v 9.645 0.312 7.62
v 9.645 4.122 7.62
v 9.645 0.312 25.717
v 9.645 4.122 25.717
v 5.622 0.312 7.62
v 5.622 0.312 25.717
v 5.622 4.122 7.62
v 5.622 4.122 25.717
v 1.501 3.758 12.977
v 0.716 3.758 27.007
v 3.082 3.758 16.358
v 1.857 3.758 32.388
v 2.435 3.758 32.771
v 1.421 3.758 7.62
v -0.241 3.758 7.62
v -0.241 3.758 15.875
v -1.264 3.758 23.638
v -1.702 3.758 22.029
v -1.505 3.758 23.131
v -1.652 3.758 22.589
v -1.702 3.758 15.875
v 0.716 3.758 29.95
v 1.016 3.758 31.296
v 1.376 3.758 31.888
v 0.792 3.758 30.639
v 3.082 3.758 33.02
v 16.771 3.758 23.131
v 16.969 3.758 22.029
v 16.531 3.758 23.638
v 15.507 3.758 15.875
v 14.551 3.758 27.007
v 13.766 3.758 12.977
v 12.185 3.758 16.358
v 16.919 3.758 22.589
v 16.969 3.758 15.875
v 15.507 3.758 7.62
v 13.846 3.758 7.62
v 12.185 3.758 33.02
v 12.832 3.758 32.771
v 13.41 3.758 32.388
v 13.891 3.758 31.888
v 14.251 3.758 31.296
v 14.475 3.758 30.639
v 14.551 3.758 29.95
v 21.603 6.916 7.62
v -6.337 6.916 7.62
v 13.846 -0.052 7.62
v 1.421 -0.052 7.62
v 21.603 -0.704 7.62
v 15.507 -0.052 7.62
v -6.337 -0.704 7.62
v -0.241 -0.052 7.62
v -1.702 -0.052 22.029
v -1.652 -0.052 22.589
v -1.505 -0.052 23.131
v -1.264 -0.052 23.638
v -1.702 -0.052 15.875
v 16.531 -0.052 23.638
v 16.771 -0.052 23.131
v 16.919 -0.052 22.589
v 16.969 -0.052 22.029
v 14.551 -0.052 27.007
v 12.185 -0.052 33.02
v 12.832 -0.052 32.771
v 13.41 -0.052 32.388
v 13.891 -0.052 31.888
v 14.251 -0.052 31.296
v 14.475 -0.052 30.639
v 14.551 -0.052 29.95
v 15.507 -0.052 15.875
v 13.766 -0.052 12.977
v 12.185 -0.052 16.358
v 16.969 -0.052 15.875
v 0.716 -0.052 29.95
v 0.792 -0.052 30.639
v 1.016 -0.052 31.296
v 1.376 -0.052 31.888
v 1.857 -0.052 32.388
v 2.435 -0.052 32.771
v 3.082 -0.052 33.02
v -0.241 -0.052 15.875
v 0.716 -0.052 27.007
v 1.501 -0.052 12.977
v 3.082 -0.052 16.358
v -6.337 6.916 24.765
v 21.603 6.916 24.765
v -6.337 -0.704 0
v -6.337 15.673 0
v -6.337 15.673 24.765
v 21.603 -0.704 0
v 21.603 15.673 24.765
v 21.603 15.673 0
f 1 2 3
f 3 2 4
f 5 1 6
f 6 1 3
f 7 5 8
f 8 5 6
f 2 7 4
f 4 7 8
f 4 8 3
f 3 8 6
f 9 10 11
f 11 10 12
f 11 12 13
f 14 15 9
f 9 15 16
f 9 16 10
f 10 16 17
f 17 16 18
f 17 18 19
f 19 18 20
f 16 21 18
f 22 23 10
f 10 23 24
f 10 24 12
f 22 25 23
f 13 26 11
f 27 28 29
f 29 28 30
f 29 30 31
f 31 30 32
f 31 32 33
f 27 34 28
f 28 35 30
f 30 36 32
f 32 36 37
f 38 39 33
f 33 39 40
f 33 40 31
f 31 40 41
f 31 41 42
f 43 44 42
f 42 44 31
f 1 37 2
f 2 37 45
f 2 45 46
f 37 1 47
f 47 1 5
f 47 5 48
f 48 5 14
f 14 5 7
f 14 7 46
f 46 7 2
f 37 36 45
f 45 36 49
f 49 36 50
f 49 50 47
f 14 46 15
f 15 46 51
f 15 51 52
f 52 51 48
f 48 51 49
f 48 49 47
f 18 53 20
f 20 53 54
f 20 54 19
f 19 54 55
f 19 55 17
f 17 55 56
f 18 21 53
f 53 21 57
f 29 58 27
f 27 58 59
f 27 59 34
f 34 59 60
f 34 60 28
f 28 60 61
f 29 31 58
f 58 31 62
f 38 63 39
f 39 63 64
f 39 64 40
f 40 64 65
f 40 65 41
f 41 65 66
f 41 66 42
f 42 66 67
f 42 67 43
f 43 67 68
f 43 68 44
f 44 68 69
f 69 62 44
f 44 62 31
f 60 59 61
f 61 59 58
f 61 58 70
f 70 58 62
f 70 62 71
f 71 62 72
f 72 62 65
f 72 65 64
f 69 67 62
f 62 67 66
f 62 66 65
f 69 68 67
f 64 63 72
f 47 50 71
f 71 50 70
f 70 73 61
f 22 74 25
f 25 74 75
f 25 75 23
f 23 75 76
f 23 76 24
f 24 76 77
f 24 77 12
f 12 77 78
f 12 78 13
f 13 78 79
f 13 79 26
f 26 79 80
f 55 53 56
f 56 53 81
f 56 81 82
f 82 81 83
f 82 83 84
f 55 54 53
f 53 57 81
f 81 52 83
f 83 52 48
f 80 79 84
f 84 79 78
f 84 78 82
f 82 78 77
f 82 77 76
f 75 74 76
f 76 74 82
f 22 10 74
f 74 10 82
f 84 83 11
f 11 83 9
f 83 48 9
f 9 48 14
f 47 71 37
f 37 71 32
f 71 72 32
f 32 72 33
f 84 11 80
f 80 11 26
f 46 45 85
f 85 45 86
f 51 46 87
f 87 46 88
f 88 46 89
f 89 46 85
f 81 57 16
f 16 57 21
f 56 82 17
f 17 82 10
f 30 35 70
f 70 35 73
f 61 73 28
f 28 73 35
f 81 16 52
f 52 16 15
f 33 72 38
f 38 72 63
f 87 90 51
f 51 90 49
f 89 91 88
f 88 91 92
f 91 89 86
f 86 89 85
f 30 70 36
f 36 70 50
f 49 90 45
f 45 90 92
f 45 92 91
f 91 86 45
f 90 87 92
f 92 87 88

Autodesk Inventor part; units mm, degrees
ref_plane "YZ Plane" through (0, 0, 0) normal (1, 0, 0) x (0, 1, 0)
ref_plane "XZ Plane" through (0, 0, 0) normal (0, 1, 0) x (-1, 0, 0)
ref_plane "XY Plane" through (0, 0, 0) normal (0, 0, 1) x (1, 0, 0)
sketch "Sketch1" plane through (0, 0, 0) normal (0, 0, 1) x (1, 0, 0)
  line L0 (-6.3366, 6.9163) -> (21.6034, 6.9163)
  line L1 (21.6034, 6.9163) -> (21.6034, -8.3237)
  line L2 (21.6034, -8.3237) -> (-6.3366, -8.3237)
  line L3 (-6.3366, -8.3237) -> (-6.3366, 6.9163)
  point P0 (0, 0)
  dimension "d0" = 27.94
  dimension "d1" = 15.24
extrude "Extrusion1" add sketch "Sketch1" along normal blind 7.62
sketch "Sketch2" plane through (0, 0, 7.62) normal (0, 0, 1) x (1, 0, 0)
  line L0 (-6.3366, 6.9163) -> (-6.3366, -8.3237) projected
  line L1 (21.6034, -8.3237) -> (21.6034, 6.9163) projected
  line L2 (21.6034, -0.052) -> (21.6034, 2.361)
  line L3 (-6.3366, 2.361) -> (-6.3366, -0.052)
  line L4 (21.6034, 6.9163) -> (-6.3366, 6.9163) projected
  line L5 (-6.3366, -8.3237) -> (21.6034, -8.3237) projected
  line L6 (0.9631, 2.361) -> (-0.2406, 2.361)
  line L7 (-0.2406, -0.052) -> (0.9631, -0.052)
  line L8 (-0.2406, -0.052) -> (-0.2406, 2.361)
  line L9 (-0.2406, -0.052) -> (3.0821, -0.052)
  line L10 (3.0821, -0.052) -> (3.0821, 2.361)
  line L11 (3.0821, 2.361) -> (-0.2406, 2.361)
  line L12 (-0.2406, 2.361) -> (-0.2406, -0.052)
  line L13 (14.3038, 2.361) -> (15.5074, 2.361)
  line L14 (15.5074, -0.052) -> (14.3038, -0.052)
  line L15 (15.5074, -0.052) -> (15.5074, 2.361)
  line L16 (15.5074, -0.052) -> (12.1847, -0.052)
  line L17 (12.1847, -0.052) -> (12.1847, 2.361)
  line L18 (12.1847, 2.361) -> (15.5074, 2.361)
  line L19 (15.5074, 2.361) -> (15.5074, -0.052)
  line L20 (-6.3366, -0.7037) -> (21.6034, -0.7037)
  line L21 (-6.3366, 2.361) -> (21.6034, 2.361)
  line L22 (21.6034, 2.361) -> (21.6034, -0.052)
  line L23 (21.6034, -0.052) -> (-6.3366, -0.052)
  line L24 (-6.3366, -0.052) -> (-6.3366, 2.361)
  point P0 (0, 0)
  point P1 (-0.2406, 1.1545)
  point P2 (15.2669, -0.3643)
  point P3 (15.5074, 1.1545)
  point P4 (15.5074, -0.052)
  point P5 (21.6034, -0.052)
  point P6 (15.5074, 2.361)
  point P7 (-6.3366, -0.052)
  point P8 (-0.2406, -0.052)
  point P9 (-0.2406, 2.361)
  point P10 (-6.3366, 2.361)
  point P11 (3.0821, -0.052)
  point P12 (12.1847, -0.052)
  point P13 (12.1847, 2.361)
  point P14 (3.0821, 2.361)
  dimension "d6" = 6.096
extrude "Extrusion2" add sketch "Sketch2" along normal blind 8.7376 contours L6 L11 L10 L9 L7 L8 | L15 L14 L16 L17 L18 L13
sketch "Sketch3" plane through (-0.2406, 2.361, 7.62) normal (0, 1, 0) x (1, 0, 0)
  line L0 (3.3227, -8.7376) -> (0, -8.7376) projected
  line L1 (-6.096, 7.62) -> (21.844, 7.62) projected
  line L2 (3.3227, -11.3552) -> (3.3227, -8.7376)
  line L3 (12.4253, -11.3552) -> (12.4253, -8.7376)
  line L4 (17.2091, -8.255) -> (17.2091, -15.2732)
  line L5 (17.2091, -15.2732) -> (14.9854, -19.057)
  line L6 (14.9854, -19.057) -> (12.4253, -19.057)
  line L7 (12.4253, -19.057) -> (12.4253, -8.7376)
  line L8 (7.874, 7.62) -> (7.874, -24.8322)
  line L9 (3.3227, -11.3552) -> (3.3227, -8.7376)
  line L10 (-1.4611, -8.255) -> (-1.4611, -15.2732)
  line L11 (-1.4611, -15.2732) -> (0.7626, -19.057)
  line L12 (0.7626, -19.057) -> (3.3227, -19.057)
  line L13 (3.3227, -19.057) -> (3.3227, -8.7376)
  line L14 (17.2091, -8.255) -> (12.4253, -8.255)
  line L15 (12.4253, 0) -> (12.4253, -8.7376) projected
  line L16 (12.4253, -8.255) -> (12.4253, -8.7376)
  line L17 (-1.4611, -8.255) -> (3.3227, -8.255)
  line L18 (3.3227, 0) -> (3.3227, -8.7376) projected
  line L19 (3.3227, -8.255) -> (3.3227, -8.7376)
  point P0 (0.2406, 7.62)
extrude "Extrusion4" add sketch "Sketch2" along normal blind 25.4 contours L6 L11 L10 L9 L7 L8 | L15 L14 L16 L17 L18 L13
sketch "Sketch4" plane through (-6.3366, 6.9163, 0) normal (0, 1, 0) x (1, 0, 0)
  point P0 (6.3366, 0)
sketch "Sketch5" plane through (0, 0, 7.62) normal (0, 0, 1) x (1, 0, 0)
  line L0 (21.6034, 6.9163) -> (-6.3366, 6.9163) projected
  line L1 (-6.3366, 15.6735) -> (21.6034, 15.6735)
  line L2 (21.6034, 15.6735) -> (21.6034, 6.9163)
  line L3 (21.6034, 6.9163) -> (-6.3366, 6.9163)
  line L4 (-6.3366, 6.9163) -> (-6.3366, 15.6735)
  point P0 (0, 0)
extrude "Extrusion5" add sketch "Sketch5" along normal blind 17.145 and the other way blind 7.62
extrude "Extrusion6" cut sketch "Sketch2" against normal blind 25.4 contours L20 L1 L5 L0
extrude "Extrusion7" add sketch "Sketch2" along normal blind 4.7625 contours L21 L8 L23 L0 | L1 L23 L15 L21 | L21 L17 L23 L10
extrude "Extrusion8" add sketch "Sketch3" against normal up to surface (2.413 mm away)
sketch "Sketch6" plane through (-6.3366, -0.052, 7.62) normal (0, -1, 0) x (1, 0, 0)
  line L0 (27.94, 0) -> (27.94, 4.7625) projected
  line L1 (21.844, 4.7625) -> (21.844, 8.255) projected
  line L2 (27.94, 0) -> (21.844, 0)
  line L3 (21.844, 0) -> (21.844, 4.7625)
  line L4 (21.844, 4.7625) -> (27.94, 4.7625)
  line L5 (27.94, 4.7625) -> (27.94, 0)
  line L6 (18.5213, 4.7625) -> (18.5213, 25.4) projected
  line L7 (18.5213, 4.7625) -> (9.4187, 4.7625)
  line L8 (9.4187, 4.7625) -> (9.4187, 0)
  line L9 (9.4187, 0) -> (18.5213, 0)
  line L10 (18.5213, 0) -> (18.5213, 4.7625)
  line L11 (6.096, 4.7625) -> (6.096, 8.255) projected
  line L12 (0, 0) -> (0, 4.7625) projected
  line L13 (6.096, 4.7625) -> (0, 4.7625)
  line L14 (0, 4.7625) -> (0, 0)
  line L15 (0, 0) -> (6.096, 0)
  line L16 (6.096, 0) -> (6.096, 4.7625)
  point P0 (6.3366, -7.62)
  point P1 (21.844, 8.7376)
  point P2 (18.5213, 19.057)
  point P3 (6.096, 8.7376)
extrude "Extrusion9" cut sketch "Sketch6" against normal up to surface (6.9683 mm away)
sketch "Sketch7" plane through (12.1847, -0.052, 7.62) normal (0, -1, 0) x (1, 0, 0)
  line L0 (3.3227, 17.7594) -> (4.7838, 15.2732) projected
  line L1 (3.3227, 17.7594) -> (2.3659, 19.3874)
  line L2 (2.3659, 19.3874) -> (2.3659, 25.4)
  line L3 (3.3227, 25.4) -> (0, 25.4) projected
  line L4 (3.3227, 17.7594) -> (3.3227, 25.4) projected
  line L5 (2.3659, 25.4) -> (3.3227, 25.4)
  line L6 (3.3227, 25.4) -> (3.3227, 17.7594)
  line L7 (-18.5213, -7.62) -> (9.4187, -7.62) projected
  line L8 (-12.4253, 17.7594) -> (-11.4685, 19.3874)
  line L9 (-11.4685, 19.3874) -> (-11.4685, 25.4)
  line L10 (-12.4253, 17.7594) -> (-12.4253, 25.4)
  line L11 (-11.4685, 25.4) -> (-12.4253, 25.4)
  line L12 (-12.4253, 25.4) -> (-12.4253, 17.7594)
  line L13 (-12.4253, 8.7376) -> (-13.8865, 8.255) projected
  line L14 (-9.1825, 8.7376) -> (-9.1026, 8.7376)
  line L15 (-9.1026, 0) -> (-9.1026, 25.4) projected
  line L16 (-10.6842, 5.3569) -> (-10.764, 0)
  line L17 (-9.1026, 0) -> (-12.4253, 0) projected
  line L18 (-9.1026, 0) -> (-9.1026, 8.7376)
  line L19 (-10.764, 0) -> (-9.1026, 0)
  line L20 (9.4187, -7.62) -> (-18.5213, -7.62) projected
  line L21 (-18.5213, 17.145) -> (9.4187, 17.145) projected
  line L22 (1.5816, 5.3569) -> (1.6613, 0)
  line L23 (1.6613, 0) -> (0, 0)
  line L24 (0, 0) -> (0, 8.7376)
  line L25 (-4.5513, -7.62) -> (-4.5513, 0)
  line L26 (-4.5513, 11.274) -> (-4.5513, 11.3382)
  line L27 (-9.1026, 8.7376) -> (-10.6842, 5.3569)
  line L28 (0, 8.7376) -> (1.5816, 5.3569)
  point P0 (-12.1847, -7.62)
extrude "Extrusion10" cut sketch "Sketch7" against normal up to surface (6.9683 mm away)
fillet "Fillet1" radius 3.175 4 edges at (0.7162, 1.1545, 33.02) (14.5507, 1.1545, 33.02) (16.9686, 1.1545, 22.8932) (-1.7017, 1.1545, 22.8932)
sketch "Sketch8" plane through (-0.2406, -0.052, 7.62) normal (0, -1, 0) x (1, 0, 0)
  arc A0 (-1.0234, 16.018) -> (-1.4611, 14.4093) centre (1.7139, 14.4093) ccw projected
  line L0 (-1.4611, 8.255) -> (-1.4611, 14.4093) projected
  line L1 (0, 0) -> (0, 8.255) projected
  line L2 (1.6613, 0) -> (0, 0) projected
  line L3 (1.6613, 0) -> (1.7411, 5.3569) projected
  line L4 (1.7411, 5.3569) -> (3.3227, 8.7376) projected
  line L5 (3.3227, 8.7376) -> (3.3227, 25.4) projected
  arc A1 (3.3227, 25.4) -> (0.9568, 22.3298) centre (4.1318, 22.3298) ccw projected
  line L6 (0.9568, 22.3298) -> (0.9568, 19.3874) projected
  line L7 (0.9568, 19.3874) -> (-1.0234, 16.018) projected
  arc A2 (17.2091, 14.4093) -> (16.7714, 16.018) centre (14.0341, 14.4093) ccw projected
  line L8 (16.7714, 16.018) -> (14.7912, 19.3874) projected
  line L9 (14.7912, 19.3874) -> (14.7912, 22.3298) projected
  arc A3 (14.7912, 22.3298) -> (12.4253, 25.4) centre (11.6162, 22.3298) ccw projected
  line L10 (12.4253, 8.7376) -> (12.4253, 25.4) projected
  line L11 (12.4253, 8.7376) -> (14.0069, 5.3569) projected
  line L12 (14.0069, 5.3569) -> (14.0867, 0) projected
  line L13 (15.748, 0) -> (14.0867, 0) projected
  line L14 (15.748, 0) -> (15.748, 8.255) projected
  line L15 (17.2091, 14.4093) -> (17.2091, 8.255) projected
  line L16 (17.2091, 8.255) -> (15.748, 8.255) projected
  line L17 (0, 8.255) -> (-1.4611, 8.255) projected
  point P0 (0.2406, -7.62)
extrude "Extrusion11" add sketch "Sketch8" against normal blind 3.81
sketch "Sketch9" plane through (0, 0, 7.62) normal (0, 0, 1) x (1, 0, 0)
  line L0 (9.6447, 0.3123) -> (5.6221, 0.3123)
  line L1 (5.6221, 0.3123) -> (5.6221, 4.1223)
  line L2 (5.6221, 4.1223) -> (9.6447, 4.1223)
  line L3 (9.6447, 4.1223) -> (9.6447, 0.3123)
  line L4 (12.1847, -0.052) -> (12.1847, 3.758) projected
  line L5 (3.0821, -0.052) -> (3.0821, 3.758) projected
  point P0 (0, 0)
  dimension "d30" = 2.54
  dimension "d31" = 2.54
extrude "Extrusion12" add sketch "Sketch9" along normal blind 18.0975
properties part number "Attachment5"
